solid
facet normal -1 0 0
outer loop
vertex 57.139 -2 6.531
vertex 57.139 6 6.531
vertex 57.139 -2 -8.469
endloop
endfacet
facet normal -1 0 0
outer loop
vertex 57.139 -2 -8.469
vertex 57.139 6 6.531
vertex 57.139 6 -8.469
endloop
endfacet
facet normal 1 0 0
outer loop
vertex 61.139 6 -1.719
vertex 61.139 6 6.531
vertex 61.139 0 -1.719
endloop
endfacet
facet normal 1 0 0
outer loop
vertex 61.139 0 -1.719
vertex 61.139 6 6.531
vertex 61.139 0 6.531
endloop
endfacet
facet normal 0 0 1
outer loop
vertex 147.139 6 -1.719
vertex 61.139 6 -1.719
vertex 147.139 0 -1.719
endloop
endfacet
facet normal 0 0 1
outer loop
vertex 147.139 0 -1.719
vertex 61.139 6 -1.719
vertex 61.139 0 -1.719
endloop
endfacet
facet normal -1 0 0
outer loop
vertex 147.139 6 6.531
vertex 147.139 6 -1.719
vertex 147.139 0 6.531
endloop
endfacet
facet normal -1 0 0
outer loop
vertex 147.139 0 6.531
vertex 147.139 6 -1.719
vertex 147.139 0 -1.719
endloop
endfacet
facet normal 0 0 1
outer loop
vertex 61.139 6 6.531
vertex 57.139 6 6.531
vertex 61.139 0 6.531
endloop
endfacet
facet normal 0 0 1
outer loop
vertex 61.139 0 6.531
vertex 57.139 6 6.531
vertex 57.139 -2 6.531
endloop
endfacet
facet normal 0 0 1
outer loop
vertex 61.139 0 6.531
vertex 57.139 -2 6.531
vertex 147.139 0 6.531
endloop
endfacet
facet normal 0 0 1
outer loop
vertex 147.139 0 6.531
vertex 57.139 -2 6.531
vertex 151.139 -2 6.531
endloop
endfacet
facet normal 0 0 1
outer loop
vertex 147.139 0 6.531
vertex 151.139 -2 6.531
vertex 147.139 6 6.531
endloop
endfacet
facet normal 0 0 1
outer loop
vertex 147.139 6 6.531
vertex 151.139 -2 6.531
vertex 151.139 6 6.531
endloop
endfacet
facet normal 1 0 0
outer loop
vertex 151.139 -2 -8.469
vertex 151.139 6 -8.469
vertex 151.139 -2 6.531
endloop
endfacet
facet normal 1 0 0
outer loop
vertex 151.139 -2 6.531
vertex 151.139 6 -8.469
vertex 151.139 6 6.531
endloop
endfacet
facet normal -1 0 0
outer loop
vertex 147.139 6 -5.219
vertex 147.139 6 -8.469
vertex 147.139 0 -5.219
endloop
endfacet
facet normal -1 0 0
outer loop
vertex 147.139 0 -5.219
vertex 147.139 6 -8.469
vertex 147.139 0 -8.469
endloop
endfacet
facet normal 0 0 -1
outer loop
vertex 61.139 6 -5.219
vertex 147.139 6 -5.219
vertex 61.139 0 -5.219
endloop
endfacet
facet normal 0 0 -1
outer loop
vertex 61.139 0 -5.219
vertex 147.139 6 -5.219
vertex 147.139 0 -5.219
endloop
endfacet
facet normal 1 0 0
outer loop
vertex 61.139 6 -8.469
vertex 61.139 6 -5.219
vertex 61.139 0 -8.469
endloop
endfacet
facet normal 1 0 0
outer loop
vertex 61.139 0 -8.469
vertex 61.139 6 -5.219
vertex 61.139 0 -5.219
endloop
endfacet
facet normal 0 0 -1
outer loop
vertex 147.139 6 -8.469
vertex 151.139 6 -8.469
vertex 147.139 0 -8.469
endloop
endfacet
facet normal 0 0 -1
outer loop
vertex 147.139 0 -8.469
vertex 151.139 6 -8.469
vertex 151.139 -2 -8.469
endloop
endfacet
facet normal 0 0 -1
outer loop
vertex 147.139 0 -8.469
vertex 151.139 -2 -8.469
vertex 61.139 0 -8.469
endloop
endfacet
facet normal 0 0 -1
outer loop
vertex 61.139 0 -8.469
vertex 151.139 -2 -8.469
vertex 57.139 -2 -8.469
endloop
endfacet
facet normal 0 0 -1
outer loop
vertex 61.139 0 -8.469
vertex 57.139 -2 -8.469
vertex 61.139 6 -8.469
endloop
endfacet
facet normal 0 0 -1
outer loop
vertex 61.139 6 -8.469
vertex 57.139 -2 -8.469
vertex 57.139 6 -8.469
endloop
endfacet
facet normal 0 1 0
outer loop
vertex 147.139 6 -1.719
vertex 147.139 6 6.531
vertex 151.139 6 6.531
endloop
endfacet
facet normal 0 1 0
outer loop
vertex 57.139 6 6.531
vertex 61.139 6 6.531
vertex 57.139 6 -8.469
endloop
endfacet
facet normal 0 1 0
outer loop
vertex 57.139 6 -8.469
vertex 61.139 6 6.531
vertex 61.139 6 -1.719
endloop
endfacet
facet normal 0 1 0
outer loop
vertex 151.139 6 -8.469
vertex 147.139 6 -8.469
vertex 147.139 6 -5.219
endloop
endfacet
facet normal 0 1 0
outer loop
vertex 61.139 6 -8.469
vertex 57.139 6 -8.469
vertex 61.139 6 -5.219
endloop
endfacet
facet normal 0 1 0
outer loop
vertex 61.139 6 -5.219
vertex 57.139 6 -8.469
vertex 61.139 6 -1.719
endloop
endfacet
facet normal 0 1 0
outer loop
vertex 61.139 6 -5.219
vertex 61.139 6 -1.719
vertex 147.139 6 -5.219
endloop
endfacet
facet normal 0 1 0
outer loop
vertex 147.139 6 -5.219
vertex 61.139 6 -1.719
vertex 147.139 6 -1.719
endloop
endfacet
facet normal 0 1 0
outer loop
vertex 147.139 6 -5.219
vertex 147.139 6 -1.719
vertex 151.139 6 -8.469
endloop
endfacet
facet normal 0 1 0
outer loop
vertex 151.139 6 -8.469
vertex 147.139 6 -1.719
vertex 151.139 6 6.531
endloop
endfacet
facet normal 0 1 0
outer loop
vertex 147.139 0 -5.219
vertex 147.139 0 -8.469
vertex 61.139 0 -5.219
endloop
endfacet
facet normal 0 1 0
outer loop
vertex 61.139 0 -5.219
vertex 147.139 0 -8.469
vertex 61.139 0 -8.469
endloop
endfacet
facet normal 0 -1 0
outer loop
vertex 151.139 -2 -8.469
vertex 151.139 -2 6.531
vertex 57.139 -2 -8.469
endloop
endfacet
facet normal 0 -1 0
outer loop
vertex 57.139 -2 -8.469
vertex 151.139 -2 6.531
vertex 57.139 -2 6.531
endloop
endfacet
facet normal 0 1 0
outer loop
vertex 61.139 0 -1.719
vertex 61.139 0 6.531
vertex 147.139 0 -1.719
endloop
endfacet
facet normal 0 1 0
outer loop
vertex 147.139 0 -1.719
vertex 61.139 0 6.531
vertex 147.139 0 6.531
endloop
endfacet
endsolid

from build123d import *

# Parameters (mm, degrees)
BOSS_EXTRUDE1_DEPTH = 6
SKETCH2_W           = 94
SKETCH2_H           = 15
BOSS_EXTRUDE2_DEPTH = 2


with BuildPart() as part:
    # Sketch1 → Boss-Extrude1 (new body)
    with BuildSketch(Plane(origin=(0, 0, 0), x_dir=(1, 0, 0), z_dir=(0, 1, 0))):
        Polygon((57.138726824, 8.469222481), (61.138726824, 8.469222481), (61.138726824, 5.219222481), (147.138726824, 5.219222481), (147.138726824, 8.469222481), (151.138726824, 8.469222481), (151.138726824, -6.530777519), (147.138726824, -6.530777519), (147.138726824, 1.719222481), (61.138726824, 1.719222481), (61.138726824, -6.530777519), (57.138726824, -6.530777519), align=None)
    extrude(amount=BOSS_EXTRUDE1_DEPTH)

    # Sketch2 → Boss-Extrude2 (add)
    with BuildSketch(Plane.XZ):
        with Locations((104.138726824, -0.969222481)):
            Rectangle(SKETCH2_W, SKETCH2_H)
    extrude(amount=BOSS_EXTRUDE2_DEPTH)


solid = part.part
